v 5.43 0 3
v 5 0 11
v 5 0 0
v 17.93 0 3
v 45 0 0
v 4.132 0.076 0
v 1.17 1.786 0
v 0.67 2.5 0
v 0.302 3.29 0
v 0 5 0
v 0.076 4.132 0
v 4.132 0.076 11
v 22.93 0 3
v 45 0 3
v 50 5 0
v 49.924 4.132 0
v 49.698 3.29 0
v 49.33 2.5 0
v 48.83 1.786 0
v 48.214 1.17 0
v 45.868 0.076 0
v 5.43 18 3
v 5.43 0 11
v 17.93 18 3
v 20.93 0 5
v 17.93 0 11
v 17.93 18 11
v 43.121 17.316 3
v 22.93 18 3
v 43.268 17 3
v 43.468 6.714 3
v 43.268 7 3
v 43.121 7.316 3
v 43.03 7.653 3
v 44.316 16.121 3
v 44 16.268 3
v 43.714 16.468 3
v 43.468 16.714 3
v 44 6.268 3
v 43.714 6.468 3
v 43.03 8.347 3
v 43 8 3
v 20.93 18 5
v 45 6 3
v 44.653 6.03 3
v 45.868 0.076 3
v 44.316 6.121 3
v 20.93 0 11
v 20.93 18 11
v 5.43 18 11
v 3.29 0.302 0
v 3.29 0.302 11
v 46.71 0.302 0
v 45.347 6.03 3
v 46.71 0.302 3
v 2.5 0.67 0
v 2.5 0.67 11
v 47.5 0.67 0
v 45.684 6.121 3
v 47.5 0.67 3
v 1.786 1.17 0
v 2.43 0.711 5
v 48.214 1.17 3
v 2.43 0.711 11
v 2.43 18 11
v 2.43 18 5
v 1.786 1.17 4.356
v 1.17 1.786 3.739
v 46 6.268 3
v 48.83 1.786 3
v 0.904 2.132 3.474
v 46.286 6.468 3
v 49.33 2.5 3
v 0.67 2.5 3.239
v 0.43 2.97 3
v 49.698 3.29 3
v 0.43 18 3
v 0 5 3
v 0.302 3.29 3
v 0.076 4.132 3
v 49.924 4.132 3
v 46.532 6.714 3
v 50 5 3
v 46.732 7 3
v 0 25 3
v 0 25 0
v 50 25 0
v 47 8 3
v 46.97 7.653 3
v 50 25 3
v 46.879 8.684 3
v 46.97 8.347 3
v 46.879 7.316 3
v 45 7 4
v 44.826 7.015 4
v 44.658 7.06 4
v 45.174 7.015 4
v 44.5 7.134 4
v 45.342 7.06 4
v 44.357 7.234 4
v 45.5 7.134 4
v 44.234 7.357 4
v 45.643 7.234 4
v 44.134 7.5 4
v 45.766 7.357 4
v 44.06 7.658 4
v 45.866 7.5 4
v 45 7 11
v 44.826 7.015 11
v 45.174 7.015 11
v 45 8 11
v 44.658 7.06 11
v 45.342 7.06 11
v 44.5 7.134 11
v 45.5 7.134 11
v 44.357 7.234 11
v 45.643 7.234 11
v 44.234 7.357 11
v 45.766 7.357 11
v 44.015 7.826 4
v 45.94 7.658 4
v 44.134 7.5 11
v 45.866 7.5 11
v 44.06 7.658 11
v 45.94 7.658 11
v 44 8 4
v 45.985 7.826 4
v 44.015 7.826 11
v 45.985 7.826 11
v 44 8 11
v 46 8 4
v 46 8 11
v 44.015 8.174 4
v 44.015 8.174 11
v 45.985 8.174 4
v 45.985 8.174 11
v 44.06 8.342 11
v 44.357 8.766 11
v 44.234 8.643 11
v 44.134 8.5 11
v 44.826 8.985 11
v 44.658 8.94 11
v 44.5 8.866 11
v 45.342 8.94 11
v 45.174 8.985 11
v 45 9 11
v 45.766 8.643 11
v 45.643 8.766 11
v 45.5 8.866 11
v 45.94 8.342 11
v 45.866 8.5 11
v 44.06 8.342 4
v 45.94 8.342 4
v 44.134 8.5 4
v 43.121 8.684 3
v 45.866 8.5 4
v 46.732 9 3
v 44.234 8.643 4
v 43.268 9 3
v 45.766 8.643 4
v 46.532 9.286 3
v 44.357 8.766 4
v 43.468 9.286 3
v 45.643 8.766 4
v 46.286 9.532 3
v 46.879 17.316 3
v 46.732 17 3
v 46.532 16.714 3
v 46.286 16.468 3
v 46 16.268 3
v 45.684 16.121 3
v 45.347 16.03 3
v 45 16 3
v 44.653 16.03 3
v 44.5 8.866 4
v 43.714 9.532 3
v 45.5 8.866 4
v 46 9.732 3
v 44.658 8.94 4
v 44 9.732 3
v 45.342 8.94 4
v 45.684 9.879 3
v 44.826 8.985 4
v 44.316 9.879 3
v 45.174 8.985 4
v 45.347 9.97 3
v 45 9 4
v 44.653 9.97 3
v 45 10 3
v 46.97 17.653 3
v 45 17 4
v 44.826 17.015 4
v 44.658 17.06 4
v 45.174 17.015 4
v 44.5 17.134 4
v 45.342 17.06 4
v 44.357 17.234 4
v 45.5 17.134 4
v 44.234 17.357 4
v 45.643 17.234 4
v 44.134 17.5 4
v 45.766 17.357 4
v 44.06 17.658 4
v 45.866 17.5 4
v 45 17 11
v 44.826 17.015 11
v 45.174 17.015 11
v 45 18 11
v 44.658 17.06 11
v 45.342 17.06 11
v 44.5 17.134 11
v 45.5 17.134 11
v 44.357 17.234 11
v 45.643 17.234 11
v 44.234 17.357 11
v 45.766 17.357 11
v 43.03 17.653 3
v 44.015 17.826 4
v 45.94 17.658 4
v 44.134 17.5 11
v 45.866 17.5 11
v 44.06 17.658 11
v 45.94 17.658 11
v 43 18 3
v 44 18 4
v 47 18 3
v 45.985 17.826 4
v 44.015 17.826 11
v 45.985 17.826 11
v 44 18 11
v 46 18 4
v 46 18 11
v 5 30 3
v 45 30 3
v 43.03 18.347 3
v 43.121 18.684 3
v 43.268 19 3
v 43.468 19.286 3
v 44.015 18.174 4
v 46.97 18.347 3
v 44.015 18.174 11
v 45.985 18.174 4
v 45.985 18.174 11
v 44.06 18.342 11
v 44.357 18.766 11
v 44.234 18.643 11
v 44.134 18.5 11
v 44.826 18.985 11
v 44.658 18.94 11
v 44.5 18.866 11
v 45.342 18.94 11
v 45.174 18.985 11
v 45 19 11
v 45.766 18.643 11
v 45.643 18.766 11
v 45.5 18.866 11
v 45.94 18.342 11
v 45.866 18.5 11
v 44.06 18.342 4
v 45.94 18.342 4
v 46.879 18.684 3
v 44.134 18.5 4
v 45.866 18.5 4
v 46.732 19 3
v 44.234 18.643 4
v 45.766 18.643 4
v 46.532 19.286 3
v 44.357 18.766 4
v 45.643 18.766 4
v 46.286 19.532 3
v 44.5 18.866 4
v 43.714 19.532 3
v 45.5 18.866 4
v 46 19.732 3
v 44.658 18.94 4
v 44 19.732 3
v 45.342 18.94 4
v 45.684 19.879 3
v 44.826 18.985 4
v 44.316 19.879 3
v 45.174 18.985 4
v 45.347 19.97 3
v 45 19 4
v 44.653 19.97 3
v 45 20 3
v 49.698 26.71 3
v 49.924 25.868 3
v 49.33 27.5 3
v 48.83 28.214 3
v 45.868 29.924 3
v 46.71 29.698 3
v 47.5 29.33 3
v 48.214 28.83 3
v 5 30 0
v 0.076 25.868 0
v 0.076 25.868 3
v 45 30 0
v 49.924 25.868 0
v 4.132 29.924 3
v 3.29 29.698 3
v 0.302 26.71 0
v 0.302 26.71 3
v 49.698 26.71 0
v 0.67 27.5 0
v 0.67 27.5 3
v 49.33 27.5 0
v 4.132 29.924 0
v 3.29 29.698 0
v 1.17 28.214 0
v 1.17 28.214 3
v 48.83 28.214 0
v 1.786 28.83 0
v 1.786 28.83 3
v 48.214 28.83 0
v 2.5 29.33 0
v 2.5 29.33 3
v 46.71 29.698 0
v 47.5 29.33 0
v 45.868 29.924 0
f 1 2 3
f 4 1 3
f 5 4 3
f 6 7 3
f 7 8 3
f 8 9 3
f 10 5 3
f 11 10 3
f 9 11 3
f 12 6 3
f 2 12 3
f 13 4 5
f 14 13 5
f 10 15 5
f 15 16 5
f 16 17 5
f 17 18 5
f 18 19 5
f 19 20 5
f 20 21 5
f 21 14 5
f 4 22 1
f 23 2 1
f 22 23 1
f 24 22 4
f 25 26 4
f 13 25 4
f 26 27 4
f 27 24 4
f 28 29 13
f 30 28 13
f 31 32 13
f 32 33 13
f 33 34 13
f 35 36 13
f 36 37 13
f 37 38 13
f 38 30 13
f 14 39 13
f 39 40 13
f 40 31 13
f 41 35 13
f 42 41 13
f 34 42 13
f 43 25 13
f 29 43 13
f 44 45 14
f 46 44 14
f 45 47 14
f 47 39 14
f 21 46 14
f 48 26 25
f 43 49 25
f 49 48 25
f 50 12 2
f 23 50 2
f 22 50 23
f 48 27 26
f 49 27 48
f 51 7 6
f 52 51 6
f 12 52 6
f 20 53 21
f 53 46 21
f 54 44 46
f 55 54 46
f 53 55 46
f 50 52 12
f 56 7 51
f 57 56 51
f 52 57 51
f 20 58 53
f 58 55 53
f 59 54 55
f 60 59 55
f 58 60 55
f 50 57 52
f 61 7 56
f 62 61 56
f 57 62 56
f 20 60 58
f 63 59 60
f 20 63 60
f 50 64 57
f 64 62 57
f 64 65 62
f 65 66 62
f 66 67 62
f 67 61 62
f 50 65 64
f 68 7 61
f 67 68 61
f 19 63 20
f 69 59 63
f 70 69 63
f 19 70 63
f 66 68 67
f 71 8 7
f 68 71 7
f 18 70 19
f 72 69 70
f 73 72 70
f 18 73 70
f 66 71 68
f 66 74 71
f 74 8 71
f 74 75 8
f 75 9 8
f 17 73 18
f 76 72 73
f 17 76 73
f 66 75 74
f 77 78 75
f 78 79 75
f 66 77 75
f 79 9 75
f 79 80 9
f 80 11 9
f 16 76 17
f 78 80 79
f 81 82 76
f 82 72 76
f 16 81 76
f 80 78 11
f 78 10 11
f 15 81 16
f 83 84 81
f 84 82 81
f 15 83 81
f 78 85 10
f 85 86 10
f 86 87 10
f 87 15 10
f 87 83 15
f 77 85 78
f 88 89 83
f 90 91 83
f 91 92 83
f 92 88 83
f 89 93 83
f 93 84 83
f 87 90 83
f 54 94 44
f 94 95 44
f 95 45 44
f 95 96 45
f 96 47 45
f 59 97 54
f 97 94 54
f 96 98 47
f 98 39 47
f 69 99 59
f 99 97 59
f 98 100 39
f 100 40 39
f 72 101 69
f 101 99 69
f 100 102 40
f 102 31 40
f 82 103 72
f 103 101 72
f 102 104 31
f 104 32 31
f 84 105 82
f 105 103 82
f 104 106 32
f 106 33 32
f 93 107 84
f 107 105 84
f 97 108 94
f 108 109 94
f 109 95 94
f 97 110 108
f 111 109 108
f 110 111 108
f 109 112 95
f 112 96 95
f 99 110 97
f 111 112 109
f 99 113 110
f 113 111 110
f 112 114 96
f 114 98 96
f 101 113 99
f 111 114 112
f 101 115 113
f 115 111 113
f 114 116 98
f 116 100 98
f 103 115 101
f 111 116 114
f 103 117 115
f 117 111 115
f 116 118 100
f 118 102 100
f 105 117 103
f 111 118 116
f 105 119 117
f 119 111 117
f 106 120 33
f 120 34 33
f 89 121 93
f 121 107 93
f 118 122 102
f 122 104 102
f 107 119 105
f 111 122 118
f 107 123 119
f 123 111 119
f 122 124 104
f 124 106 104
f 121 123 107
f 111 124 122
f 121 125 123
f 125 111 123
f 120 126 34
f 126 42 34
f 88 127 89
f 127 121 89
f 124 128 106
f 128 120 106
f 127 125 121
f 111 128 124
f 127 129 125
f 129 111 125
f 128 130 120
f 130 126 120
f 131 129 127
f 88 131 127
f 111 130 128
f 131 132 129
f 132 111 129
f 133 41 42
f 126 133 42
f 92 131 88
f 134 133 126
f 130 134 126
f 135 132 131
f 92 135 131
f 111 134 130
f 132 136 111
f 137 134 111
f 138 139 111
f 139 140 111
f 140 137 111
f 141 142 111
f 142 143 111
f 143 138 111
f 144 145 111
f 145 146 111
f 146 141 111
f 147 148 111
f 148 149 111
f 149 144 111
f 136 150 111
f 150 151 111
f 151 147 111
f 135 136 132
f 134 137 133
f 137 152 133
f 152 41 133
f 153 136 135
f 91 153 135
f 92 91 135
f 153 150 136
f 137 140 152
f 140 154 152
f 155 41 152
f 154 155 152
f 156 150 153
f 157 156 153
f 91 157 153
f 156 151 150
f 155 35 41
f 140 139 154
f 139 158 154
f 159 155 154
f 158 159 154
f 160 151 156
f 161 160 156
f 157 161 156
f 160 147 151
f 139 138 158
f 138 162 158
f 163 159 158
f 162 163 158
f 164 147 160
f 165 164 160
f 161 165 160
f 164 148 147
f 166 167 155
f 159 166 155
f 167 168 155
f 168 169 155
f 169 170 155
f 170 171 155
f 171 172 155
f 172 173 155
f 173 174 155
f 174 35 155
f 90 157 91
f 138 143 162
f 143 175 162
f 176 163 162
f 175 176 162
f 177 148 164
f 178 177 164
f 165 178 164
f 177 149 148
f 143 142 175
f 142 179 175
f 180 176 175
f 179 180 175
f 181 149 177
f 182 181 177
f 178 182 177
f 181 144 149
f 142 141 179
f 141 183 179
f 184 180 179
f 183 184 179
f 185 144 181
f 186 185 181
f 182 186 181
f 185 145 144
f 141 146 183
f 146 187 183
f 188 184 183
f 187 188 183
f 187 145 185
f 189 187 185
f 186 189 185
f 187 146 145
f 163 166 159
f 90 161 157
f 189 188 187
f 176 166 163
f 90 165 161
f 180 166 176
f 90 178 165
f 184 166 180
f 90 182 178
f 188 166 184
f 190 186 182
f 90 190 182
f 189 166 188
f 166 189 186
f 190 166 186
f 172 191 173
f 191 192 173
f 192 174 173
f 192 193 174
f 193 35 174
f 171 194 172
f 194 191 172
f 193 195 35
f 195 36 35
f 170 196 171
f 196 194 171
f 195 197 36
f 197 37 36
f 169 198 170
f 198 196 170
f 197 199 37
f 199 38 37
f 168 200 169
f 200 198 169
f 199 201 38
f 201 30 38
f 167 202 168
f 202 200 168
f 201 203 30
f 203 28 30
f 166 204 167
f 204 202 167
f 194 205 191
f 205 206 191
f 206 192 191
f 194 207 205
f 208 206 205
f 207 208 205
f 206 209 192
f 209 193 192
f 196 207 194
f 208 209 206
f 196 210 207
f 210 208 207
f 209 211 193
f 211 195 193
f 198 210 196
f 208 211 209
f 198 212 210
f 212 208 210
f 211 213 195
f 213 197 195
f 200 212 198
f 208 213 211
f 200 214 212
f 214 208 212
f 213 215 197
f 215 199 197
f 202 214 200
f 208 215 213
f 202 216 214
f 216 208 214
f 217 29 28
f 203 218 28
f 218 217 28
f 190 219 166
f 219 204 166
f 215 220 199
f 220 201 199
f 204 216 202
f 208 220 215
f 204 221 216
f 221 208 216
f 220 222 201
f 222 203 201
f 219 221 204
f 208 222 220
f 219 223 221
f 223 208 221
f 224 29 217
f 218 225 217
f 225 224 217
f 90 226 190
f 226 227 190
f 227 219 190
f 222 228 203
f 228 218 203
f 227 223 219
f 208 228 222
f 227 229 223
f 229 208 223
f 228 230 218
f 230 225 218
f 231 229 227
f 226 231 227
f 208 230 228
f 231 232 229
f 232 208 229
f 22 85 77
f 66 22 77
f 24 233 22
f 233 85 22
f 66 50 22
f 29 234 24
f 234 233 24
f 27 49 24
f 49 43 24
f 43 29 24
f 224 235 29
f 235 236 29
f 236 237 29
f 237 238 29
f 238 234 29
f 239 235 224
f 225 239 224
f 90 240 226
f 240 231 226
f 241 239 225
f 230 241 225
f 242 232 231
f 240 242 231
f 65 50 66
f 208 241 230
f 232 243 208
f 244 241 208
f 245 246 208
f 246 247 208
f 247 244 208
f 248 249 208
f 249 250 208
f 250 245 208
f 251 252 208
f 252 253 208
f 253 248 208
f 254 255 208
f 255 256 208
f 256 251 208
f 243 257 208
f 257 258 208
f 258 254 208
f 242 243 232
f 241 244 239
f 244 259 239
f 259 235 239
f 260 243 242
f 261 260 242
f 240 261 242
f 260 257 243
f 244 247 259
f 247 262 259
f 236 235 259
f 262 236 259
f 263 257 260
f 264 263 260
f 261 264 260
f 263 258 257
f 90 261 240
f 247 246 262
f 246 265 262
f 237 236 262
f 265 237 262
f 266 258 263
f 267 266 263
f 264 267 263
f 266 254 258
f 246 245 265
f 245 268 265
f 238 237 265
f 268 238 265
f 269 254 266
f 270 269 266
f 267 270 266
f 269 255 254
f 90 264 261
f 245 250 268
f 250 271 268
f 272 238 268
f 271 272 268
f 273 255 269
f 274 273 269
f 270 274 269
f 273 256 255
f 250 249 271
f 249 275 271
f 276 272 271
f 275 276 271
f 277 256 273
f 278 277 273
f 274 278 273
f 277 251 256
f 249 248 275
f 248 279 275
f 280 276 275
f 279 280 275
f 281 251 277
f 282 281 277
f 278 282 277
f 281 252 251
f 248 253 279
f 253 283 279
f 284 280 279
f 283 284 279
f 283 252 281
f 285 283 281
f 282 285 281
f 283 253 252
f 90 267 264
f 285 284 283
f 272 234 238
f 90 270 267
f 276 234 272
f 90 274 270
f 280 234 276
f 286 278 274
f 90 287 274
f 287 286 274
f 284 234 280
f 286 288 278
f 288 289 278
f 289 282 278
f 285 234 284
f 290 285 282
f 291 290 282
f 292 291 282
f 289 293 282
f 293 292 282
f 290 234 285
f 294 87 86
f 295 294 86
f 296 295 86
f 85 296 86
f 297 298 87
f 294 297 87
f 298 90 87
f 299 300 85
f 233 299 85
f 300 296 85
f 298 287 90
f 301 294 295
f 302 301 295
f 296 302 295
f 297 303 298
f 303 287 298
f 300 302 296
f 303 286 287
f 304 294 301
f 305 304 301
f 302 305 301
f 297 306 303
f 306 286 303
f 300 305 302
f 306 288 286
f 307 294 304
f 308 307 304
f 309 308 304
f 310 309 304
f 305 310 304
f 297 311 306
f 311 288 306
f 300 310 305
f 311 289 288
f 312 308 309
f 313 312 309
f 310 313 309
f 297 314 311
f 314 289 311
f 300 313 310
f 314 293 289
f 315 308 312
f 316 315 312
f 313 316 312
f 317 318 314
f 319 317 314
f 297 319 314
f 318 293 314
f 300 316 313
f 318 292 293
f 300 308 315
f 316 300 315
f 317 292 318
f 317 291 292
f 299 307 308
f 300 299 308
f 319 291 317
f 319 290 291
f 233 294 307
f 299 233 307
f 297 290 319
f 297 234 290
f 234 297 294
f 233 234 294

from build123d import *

# Parameters (mm, degrees)
SKETCH1_W           = 50
SKETCH1_H           = 30
BOSS_EXTRUDE1_DEPTH = 3
SKETCH2_W           = 3
SKETCH2_H           = 18
SKETCH2_R           = 1
BOSS_EXTRUDE2_DEPTH = 8
CHAMFER1_SIZE       = 2
FILLET1_R           = 5
CHAMFER3_SIZE       = 1


with BuildPart() as part:
    # Sketch1 → Boss-Extrude1 (new body)
    with BuildSketch(Plane.XY):
        with Locations((25, 15)):
            Rectangle(SKETCH1_W, SKETCH1_H)
    extrude(amount=BOSS_EXTRUDE1_DEPTH)

    # Sketch2 → Boss-Extrude2 (add)
    with BuildSketch(Plane.XY.offset(3)):
        with Locations((3.930461557, 9)):
            Rectangle(SKETCH2_W, SKETCH2_H)
        with Locations((19.430461557, 9)):
            Rectangle(SKETCH2_W, SKETCH2_H)
        with Locations((45, 18)):
            Circle(SKETCH2_R)
        with Locations((45, 8)):
            Circle(SKETCH2_R)
    extrude(amount=BOSS_EXTRUDE2_DEPTH)

    # Chamfer1
    chamfer1_edges = [part.edges().sort_by_distance(p)[0] for p in [
        (2.430461557, 9, 3),
        (20.930461557, 9, 3),
    ]]
    chamfer(chamfer1_edges, length=CHAMFER1_SIZE)

    # Fillet1
    fillet1_edges = [part.edges().sort_by_distance(p)[0] for p in [
        (0, 0, 1.5),
        (50, 0, 1.5),
        (50, 30, 1.5),
        (0, 30, 1.5),
    ]]
    fillet(fillet1_edges, radius=FILLET1_R)

    # Chamfer3
    chamfer3_edges = [part.edges().sort_by_distance(p)[0] for p in [
        (44, 18, 3),
        (44, 8, 3),
    ]]
    chamfer(chamfer3_edges, length=CHAMFER3_SIZE)


solid = part.part
